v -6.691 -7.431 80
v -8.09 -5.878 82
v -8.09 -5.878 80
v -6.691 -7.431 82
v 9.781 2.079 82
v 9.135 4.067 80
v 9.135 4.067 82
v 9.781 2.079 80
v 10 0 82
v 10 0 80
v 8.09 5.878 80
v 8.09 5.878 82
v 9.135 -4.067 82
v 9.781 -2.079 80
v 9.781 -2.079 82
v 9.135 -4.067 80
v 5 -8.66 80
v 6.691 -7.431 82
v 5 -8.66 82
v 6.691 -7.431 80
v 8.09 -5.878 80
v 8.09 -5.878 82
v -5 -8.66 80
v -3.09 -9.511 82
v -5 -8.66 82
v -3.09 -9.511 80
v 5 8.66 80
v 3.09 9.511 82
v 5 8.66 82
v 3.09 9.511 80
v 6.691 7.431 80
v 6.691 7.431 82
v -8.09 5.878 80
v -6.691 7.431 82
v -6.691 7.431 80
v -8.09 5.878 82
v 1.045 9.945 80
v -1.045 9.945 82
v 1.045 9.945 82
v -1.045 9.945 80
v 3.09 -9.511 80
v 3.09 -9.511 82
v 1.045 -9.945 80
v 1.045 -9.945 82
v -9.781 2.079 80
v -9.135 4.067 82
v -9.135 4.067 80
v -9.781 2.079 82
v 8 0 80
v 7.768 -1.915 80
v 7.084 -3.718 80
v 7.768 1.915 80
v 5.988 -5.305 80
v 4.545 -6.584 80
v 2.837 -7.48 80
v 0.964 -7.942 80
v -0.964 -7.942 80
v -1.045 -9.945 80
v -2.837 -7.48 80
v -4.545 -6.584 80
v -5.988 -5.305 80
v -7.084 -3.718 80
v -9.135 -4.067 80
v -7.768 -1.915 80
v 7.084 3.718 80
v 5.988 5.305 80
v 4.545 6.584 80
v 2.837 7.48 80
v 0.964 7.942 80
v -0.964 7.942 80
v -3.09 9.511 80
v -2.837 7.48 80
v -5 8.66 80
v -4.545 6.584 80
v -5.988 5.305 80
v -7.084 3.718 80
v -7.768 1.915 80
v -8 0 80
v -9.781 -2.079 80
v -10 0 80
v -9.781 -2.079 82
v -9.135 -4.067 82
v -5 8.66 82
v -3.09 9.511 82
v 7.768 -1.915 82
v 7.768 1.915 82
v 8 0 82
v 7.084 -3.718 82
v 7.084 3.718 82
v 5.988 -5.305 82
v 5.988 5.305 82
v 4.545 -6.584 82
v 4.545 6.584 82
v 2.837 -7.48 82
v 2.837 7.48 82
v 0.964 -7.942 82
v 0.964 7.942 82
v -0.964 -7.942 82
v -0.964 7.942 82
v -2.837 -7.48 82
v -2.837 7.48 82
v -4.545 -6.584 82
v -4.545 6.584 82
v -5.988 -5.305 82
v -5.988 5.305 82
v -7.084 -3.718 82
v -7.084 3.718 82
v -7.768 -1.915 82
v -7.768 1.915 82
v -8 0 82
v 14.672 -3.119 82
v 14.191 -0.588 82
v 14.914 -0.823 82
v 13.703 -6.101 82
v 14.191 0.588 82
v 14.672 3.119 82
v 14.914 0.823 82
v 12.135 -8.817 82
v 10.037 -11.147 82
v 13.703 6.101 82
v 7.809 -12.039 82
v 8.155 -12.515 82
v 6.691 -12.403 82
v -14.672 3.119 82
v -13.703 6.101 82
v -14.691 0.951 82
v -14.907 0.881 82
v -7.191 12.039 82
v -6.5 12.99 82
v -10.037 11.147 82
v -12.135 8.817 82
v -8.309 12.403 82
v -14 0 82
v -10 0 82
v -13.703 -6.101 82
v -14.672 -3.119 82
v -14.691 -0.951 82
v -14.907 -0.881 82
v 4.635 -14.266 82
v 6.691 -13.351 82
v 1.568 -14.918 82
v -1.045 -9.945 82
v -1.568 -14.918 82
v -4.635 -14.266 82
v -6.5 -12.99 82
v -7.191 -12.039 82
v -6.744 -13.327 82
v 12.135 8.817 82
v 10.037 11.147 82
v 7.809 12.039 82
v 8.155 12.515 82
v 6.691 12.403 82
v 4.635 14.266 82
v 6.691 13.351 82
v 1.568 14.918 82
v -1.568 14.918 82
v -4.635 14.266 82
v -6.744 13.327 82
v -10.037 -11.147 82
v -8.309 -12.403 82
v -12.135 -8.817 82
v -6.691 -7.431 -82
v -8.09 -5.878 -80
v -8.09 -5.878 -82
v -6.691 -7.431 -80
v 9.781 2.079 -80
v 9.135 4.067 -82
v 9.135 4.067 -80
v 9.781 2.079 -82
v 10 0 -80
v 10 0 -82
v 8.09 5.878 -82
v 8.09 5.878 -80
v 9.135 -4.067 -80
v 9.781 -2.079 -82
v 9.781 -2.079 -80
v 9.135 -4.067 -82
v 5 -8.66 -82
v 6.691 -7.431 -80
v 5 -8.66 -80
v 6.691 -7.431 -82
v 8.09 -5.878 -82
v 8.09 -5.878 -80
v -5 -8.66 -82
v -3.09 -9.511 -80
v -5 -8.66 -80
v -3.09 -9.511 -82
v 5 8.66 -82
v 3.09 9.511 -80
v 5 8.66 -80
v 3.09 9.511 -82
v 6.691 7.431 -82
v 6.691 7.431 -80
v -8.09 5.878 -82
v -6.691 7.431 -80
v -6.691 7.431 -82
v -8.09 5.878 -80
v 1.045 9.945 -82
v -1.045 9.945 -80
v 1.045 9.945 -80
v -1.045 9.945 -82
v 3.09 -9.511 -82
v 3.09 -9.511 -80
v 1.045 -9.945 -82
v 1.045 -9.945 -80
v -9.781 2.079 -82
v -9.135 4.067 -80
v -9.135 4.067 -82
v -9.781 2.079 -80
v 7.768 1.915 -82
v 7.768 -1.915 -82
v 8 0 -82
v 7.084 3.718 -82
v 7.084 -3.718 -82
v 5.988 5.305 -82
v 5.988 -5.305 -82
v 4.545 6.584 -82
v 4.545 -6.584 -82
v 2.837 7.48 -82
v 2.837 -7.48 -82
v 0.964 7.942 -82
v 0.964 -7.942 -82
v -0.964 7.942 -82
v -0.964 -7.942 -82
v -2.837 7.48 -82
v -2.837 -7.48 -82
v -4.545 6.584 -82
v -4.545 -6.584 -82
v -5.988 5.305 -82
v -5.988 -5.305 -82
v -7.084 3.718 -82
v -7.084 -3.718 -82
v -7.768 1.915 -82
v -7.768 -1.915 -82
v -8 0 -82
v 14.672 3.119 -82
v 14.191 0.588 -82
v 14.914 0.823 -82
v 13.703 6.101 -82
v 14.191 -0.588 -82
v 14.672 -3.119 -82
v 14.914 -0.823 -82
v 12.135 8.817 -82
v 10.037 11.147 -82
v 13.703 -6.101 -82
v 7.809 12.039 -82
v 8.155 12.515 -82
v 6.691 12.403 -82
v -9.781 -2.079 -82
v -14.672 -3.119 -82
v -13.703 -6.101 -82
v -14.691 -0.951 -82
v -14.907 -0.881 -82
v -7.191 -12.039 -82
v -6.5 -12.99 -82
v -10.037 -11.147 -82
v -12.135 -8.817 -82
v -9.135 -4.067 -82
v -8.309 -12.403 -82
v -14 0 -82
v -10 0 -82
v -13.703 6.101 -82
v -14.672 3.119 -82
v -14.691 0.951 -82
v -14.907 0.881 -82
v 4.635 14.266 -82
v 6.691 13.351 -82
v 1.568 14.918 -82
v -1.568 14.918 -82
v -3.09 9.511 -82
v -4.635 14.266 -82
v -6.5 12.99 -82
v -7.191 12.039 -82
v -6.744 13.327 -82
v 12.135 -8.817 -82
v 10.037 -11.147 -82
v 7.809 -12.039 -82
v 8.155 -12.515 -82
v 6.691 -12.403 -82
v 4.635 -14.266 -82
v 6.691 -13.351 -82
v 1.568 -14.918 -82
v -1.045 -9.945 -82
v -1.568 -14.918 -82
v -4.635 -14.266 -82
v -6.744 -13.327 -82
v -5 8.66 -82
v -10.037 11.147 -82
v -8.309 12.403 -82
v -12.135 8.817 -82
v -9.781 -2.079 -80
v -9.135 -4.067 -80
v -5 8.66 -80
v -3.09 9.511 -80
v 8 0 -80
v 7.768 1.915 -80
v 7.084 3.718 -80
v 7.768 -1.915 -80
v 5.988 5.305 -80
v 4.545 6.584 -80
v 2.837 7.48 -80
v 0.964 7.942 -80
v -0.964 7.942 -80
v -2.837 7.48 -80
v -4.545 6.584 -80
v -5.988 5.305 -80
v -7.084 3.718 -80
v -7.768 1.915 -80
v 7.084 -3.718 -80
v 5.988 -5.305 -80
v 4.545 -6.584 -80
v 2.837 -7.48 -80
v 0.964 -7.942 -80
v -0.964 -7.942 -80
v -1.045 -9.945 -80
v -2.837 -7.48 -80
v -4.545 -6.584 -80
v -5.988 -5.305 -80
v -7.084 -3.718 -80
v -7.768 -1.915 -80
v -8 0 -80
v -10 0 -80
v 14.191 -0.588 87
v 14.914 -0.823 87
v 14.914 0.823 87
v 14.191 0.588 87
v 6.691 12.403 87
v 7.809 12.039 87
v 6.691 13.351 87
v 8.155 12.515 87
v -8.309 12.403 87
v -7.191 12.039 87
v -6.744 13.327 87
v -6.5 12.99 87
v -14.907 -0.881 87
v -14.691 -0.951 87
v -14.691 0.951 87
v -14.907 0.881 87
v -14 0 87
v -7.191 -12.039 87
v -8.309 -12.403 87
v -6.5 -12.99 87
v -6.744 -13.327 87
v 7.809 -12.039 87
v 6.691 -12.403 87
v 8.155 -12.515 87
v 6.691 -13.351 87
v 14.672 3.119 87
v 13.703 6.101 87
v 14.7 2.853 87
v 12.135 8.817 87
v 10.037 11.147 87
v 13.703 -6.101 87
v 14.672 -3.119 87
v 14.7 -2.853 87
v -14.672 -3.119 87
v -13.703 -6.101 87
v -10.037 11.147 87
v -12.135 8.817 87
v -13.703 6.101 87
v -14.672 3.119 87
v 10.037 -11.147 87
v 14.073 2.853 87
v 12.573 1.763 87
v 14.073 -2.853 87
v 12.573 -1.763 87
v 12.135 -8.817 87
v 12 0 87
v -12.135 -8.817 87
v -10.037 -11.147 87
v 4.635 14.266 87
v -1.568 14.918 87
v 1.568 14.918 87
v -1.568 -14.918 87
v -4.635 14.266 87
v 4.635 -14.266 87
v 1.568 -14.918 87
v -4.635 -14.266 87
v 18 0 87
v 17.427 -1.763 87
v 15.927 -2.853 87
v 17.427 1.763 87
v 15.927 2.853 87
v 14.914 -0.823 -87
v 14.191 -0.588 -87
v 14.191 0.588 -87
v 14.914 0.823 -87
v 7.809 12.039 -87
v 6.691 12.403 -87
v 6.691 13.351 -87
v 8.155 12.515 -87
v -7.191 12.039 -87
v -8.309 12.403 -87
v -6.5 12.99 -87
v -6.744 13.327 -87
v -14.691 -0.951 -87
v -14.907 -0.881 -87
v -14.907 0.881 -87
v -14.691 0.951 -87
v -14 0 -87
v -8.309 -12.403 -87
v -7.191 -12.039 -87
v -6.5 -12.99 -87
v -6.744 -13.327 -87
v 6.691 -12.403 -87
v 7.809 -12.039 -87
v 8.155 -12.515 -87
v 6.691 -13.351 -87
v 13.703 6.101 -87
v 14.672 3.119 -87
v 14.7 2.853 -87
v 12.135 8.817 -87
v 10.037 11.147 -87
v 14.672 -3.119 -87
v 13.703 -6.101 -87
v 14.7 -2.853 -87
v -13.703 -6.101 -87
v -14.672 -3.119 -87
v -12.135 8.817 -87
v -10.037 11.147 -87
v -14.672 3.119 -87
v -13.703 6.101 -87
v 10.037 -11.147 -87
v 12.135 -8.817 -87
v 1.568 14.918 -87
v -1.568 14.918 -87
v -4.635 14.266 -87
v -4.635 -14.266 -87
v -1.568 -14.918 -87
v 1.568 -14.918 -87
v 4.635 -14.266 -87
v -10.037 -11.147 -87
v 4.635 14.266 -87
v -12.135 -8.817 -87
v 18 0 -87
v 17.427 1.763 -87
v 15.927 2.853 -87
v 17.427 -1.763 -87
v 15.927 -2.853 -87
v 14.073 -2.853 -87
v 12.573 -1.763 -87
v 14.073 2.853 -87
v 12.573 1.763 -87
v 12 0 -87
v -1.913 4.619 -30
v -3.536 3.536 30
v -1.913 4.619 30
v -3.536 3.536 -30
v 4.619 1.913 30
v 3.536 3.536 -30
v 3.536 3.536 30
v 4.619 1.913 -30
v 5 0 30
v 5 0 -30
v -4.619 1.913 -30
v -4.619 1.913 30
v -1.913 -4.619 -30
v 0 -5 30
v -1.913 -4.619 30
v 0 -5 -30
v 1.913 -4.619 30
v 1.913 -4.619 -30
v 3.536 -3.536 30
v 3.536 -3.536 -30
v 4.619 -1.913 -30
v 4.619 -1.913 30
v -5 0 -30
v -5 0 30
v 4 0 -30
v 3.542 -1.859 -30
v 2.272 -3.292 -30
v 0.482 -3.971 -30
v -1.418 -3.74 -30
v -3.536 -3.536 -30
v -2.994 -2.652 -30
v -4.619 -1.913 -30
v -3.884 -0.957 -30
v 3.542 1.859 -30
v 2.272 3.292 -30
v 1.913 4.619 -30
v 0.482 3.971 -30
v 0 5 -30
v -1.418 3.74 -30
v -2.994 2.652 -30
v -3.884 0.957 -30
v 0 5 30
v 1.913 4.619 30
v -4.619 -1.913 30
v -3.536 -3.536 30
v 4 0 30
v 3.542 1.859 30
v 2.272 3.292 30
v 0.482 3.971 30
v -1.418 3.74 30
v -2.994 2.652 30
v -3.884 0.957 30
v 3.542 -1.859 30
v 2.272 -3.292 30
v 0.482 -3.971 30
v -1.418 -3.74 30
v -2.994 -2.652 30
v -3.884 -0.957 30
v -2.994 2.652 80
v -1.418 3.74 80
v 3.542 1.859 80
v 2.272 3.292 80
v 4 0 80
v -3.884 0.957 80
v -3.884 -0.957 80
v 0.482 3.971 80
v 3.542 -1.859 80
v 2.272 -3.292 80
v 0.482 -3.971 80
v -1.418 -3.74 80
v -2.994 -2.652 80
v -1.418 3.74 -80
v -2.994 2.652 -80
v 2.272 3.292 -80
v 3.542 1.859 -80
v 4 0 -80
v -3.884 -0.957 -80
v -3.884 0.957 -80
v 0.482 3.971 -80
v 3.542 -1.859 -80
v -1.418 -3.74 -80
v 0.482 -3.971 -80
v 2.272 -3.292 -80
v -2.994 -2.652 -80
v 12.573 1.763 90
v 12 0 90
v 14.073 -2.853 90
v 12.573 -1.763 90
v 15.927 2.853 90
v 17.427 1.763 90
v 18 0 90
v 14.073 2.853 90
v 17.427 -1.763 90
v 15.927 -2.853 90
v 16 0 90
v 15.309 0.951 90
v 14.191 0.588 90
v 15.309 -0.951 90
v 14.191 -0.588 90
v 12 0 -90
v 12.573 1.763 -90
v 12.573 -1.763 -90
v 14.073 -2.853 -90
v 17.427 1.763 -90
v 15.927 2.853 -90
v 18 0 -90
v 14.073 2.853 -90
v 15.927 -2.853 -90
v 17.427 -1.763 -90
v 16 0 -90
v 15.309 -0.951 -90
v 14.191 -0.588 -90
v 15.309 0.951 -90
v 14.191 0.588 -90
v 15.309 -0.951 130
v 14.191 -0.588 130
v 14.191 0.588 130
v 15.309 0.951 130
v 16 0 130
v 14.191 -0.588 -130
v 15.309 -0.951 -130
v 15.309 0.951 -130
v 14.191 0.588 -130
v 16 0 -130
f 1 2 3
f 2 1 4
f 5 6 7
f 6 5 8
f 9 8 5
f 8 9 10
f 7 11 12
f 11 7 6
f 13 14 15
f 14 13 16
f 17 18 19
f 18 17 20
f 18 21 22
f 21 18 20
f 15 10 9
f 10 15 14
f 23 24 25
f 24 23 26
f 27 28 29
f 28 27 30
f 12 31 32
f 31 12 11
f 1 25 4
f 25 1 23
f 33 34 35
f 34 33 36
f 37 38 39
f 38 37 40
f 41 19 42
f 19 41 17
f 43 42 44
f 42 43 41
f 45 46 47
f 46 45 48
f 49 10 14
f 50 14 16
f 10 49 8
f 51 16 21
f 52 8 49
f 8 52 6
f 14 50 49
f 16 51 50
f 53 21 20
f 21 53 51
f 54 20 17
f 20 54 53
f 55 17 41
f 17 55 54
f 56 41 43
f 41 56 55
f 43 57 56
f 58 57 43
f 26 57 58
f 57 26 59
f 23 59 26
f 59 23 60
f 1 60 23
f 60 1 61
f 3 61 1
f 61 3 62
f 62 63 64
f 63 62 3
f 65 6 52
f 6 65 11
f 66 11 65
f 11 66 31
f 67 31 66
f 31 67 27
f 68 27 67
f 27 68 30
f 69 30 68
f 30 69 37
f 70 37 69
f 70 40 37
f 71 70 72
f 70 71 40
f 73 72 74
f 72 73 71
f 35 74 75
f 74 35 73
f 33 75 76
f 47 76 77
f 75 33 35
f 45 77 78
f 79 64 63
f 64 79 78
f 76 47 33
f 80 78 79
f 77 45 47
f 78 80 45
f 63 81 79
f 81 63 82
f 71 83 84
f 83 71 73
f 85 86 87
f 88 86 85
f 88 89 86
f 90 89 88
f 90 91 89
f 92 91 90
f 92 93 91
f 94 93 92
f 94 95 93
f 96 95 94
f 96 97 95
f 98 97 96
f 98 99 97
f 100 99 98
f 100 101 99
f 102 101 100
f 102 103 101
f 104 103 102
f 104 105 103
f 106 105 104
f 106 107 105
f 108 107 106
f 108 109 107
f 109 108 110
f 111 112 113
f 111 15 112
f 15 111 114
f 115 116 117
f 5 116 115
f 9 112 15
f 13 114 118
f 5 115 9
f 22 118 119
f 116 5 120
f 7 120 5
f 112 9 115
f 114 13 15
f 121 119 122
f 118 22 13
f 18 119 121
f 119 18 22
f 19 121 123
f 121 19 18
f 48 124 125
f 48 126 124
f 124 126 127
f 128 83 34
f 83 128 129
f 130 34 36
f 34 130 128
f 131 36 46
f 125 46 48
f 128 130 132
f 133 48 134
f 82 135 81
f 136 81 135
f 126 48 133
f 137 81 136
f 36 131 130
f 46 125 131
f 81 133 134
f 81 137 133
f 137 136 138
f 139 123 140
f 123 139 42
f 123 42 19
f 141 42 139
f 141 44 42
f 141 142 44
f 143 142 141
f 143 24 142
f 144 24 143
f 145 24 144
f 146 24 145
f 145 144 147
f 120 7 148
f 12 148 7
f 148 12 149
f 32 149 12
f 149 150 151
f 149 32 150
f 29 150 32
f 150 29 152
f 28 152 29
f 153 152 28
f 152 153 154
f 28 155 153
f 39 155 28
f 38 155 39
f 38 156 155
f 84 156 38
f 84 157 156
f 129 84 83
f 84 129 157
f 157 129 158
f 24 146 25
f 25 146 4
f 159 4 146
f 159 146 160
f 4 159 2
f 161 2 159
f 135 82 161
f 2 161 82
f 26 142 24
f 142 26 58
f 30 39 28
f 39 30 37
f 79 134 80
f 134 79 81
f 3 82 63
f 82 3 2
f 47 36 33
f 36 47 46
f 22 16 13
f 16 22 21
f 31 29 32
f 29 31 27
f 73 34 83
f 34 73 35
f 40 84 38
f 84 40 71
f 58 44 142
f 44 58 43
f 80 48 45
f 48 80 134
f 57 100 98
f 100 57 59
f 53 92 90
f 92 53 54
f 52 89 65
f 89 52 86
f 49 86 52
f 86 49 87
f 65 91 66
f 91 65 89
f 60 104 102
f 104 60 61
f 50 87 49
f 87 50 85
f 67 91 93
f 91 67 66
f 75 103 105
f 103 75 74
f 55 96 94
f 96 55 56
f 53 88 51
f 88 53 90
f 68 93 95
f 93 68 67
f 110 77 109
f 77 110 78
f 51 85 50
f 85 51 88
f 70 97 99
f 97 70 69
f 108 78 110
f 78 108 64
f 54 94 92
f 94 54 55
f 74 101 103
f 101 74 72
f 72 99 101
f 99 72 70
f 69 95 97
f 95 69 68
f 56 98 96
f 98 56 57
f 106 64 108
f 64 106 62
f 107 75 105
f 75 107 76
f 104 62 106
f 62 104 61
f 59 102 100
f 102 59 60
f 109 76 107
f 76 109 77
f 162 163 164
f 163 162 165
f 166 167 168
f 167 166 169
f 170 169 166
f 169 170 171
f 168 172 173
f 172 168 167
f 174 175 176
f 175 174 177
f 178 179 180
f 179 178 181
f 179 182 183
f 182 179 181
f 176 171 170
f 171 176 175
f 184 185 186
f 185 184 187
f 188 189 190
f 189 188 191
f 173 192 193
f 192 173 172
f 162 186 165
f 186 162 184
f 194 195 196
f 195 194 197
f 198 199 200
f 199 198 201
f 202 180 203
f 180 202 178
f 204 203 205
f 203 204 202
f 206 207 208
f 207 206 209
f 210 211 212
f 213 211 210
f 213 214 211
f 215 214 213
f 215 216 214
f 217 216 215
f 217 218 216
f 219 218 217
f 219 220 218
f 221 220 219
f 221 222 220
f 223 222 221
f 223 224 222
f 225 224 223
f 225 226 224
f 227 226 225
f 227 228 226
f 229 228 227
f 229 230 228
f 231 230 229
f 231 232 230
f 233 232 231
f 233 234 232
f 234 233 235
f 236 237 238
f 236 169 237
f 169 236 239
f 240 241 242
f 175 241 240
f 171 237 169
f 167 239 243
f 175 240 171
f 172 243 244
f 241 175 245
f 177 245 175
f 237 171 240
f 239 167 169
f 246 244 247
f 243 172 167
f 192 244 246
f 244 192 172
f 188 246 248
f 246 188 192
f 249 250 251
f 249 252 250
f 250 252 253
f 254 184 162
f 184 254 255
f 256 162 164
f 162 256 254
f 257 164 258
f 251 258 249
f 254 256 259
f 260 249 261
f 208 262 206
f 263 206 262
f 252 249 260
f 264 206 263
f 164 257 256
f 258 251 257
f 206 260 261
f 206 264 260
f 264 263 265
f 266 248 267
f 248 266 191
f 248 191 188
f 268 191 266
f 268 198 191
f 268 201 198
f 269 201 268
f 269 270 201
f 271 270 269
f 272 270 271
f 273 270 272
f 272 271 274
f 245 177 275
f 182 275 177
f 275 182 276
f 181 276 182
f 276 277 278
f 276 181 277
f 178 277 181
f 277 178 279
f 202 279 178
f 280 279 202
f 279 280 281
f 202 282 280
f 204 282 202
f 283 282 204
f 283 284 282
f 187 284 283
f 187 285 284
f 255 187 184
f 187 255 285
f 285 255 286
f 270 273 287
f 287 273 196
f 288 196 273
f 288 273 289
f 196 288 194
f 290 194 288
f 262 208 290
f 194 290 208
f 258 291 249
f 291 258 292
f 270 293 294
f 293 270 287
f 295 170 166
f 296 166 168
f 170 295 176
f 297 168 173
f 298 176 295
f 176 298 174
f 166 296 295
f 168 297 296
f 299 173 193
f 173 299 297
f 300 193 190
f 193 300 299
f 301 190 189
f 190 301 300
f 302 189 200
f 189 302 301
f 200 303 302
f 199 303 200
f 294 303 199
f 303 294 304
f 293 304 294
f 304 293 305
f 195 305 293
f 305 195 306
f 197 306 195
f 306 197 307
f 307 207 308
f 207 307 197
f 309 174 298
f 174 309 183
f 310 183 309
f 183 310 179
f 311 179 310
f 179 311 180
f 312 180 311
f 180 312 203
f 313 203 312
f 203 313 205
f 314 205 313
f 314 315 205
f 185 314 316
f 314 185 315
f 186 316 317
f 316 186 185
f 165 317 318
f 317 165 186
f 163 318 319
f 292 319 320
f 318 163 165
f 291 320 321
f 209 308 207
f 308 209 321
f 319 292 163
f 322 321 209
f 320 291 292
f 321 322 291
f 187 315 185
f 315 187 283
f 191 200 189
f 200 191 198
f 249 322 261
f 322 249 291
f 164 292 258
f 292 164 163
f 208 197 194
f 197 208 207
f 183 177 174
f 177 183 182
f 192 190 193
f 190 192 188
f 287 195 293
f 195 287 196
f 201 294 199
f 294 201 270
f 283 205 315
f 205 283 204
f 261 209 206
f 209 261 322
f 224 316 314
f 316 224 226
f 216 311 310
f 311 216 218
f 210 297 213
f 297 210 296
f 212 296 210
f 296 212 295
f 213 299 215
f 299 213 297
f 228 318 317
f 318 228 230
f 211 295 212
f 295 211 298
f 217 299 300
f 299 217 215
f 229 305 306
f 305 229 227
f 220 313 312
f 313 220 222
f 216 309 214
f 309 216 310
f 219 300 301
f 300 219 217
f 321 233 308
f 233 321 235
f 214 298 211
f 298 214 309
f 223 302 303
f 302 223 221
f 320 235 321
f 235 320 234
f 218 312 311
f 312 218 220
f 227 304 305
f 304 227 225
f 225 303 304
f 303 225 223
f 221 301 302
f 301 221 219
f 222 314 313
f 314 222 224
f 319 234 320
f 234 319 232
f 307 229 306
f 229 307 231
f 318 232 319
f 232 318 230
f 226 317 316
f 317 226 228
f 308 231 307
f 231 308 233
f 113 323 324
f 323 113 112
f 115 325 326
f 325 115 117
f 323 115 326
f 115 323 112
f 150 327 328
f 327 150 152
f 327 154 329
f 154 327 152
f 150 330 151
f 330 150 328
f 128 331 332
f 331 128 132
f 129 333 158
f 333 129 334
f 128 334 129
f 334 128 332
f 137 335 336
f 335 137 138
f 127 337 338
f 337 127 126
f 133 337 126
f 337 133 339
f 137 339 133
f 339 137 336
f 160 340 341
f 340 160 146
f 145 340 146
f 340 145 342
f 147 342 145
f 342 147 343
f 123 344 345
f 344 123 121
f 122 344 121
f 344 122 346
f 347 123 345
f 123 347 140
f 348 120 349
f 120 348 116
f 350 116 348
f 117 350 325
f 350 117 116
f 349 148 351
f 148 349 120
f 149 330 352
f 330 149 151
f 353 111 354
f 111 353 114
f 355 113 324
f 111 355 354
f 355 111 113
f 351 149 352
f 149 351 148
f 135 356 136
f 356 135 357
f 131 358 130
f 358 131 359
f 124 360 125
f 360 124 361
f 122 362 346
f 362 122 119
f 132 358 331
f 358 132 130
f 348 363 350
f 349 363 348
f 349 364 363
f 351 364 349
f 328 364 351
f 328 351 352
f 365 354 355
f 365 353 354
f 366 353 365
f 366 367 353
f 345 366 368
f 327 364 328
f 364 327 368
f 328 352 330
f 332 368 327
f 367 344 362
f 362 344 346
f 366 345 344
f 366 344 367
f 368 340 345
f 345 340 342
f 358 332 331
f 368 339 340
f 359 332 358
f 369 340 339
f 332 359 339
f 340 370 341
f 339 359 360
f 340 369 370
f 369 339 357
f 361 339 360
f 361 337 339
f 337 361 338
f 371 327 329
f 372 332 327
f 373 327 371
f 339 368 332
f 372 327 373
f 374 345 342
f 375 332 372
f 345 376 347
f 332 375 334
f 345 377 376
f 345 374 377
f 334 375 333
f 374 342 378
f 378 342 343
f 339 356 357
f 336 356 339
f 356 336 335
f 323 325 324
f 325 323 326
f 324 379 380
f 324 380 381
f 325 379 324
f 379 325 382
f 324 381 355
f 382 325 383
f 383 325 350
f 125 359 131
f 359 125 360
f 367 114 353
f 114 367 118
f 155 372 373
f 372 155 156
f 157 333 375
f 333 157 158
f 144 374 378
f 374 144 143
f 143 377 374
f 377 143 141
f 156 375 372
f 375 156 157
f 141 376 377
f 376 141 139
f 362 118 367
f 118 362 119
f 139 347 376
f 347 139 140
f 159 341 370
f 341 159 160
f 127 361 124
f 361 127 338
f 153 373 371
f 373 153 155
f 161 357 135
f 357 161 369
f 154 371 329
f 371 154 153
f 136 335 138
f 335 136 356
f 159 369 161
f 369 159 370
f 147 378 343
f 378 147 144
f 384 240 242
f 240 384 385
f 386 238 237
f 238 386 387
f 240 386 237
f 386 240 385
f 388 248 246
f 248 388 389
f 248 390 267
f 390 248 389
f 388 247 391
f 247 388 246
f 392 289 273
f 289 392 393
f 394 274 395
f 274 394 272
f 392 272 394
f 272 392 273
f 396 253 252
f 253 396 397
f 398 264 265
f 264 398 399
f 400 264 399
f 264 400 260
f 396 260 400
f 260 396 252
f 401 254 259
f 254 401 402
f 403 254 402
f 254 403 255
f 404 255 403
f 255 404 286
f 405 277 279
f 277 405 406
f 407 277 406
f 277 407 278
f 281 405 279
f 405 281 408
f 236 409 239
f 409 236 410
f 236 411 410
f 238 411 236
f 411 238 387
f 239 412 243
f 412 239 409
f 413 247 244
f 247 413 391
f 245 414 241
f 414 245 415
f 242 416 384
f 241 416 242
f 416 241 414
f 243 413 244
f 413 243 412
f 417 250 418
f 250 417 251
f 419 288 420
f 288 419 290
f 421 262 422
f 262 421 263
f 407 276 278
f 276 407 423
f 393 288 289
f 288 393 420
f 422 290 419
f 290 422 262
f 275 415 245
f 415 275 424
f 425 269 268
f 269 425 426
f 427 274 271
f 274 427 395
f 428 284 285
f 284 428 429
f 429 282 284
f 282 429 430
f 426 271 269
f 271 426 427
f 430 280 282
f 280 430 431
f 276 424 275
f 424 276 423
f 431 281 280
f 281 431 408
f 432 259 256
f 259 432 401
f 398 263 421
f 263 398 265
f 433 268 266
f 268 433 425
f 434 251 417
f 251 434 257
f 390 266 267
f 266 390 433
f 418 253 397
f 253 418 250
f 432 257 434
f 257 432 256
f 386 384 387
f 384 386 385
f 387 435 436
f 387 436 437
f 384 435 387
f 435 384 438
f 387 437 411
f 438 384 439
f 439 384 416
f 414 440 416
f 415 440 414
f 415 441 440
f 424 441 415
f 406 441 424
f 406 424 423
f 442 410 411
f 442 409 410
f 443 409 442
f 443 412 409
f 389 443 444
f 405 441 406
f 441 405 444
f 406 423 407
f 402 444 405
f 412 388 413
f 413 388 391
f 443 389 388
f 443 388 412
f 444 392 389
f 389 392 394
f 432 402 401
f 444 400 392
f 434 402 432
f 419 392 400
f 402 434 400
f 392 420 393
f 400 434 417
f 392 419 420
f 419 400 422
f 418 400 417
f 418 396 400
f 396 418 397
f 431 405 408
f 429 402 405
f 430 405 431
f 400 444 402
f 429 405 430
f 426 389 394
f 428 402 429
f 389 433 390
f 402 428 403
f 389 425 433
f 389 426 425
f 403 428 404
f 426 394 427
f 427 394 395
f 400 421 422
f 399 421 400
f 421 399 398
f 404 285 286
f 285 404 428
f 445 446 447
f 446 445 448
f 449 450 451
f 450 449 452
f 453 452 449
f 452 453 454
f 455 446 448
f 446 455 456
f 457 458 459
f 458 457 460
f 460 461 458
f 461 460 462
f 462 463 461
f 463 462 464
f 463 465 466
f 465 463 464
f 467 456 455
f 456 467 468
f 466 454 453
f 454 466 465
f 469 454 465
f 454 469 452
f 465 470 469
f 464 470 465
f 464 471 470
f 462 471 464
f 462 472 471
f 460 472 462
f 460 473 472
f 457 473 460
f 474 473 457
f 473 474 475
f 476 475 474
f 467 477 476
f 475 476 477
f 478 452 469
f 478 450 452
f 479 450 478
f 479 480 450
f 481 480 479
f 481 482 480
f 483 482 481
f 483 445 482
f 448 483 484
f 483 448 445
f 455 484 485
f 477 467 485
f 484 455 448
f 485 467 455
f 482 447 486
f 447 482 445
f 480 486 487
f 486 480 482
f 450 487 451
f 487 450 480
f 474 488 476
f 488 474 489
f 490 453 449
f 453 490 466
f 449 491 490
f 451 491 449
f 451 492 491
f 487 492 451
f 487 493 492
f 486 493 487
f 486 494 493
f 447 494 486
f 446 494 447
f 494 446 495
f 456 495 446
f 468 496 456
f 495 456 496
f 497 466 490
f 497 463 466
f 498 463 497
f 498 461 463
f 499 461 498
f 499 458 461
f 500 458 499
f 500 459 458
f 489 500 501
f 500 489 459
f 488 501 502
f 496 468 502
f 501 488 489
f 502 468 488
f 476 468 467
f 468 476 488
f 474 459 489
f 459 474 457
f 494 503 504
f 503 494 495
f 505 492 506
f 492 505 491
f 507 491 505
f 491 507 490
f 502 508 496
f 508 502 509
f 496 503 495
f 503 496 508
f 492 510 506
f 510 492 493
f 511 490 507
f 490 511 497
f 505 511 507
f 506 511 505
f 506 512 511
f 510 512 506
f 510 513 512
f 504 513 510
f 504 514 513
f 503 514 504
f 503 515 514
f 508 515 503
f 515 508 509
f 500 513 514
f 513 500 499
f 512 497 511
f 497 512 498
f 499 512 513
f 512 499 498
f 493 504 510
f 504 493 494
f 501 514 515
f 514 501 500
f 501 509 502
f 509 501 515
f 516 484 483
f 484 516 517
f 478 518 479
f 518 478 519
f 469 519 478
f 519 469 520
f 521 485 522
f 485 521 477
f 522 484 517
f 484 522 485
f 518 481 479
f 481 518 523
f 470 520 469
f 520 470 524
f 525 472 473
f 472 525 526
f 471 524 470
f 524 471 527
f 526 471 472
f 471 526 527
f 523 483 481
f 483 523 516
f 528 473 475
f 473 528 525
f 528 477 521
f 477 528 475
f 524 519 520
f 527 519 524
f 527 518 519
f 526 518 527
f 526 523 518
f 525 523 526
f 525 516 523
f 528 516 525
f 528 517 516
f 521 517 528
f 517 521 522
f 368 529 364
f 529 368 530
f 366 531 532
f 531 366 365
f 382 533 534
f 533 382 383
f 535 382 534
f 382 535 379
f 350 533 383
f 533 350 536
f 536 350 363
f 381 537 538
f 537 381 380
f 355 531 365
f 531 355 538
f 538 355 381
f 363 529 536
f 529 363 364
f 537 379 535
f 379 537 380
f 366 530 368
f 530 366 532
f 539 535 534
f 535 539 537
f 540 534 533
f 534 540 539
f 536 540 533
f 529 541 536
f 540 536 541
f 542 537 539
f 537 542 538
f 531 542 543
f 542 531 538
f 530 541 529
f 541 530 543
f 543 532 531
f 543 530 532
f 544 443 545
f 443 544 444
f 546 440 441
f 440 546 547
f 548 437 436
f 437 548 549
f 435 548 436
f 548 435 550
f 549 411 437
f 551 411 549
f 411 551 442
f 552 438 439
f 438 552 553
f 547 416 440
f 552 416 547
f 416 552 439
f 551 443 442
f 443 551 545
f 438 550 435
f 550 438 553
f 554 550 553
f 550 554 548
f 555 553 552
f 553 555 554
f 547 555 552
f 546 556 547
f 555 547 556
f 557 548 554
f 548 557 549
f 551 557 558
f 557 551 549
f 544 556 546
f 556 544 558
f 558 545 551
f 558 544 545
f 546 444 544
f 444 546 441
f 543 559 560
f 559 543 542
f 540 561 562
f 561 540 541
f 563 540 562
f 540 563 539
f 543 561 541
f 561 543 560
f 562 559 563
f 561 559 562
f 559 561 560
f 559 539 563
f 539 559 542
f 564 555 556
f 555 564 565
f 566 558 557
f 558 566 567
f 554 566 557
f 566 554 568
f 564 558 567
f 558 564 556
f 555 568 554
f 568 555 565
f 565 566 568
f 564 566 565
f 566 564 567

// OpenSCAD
// Parameters for the central shaft
shaft_diameter = 10; // Diameter of the central shaft
shaft_length = 60;   // Length of the central shaft (elongated to match the original model)

// Central Shaft
module central_shaft() {
    // Ensure a consistent cylindrical shape
    cylinder(d = shaft_diameter, h = shaft_length, center = true);
}

// Parameters for the input shaft
input_shaft_diameter = 8; // Diameter of the input shaft
input_shaft_length = 50;  // Length of the input shaft (elongated to match the original model)

// Input Shaft
module input_shaft() {
    // Ensure a consistent cylindrical shape
    cylinder(d = input_shaft_diameter, h = input_shaft_length, center = true);
}

// Parameters for the output shaft
output_shaft_diameter = 8; // Diameter of the output shaft
output_shaft_length = 50;  // Length of the output shaft (elongated to match the original model)

// Output Shaft
module output_shaft() {
    // Ensure a consistent cylindrical shape
    cylinder(d = output_shaft_diameter, h = output_shaft_length, center = true);
}

// Parameters for the spacer ring
spacer_ring_thickness = 2; // Thickness of the spacer ring (reduced to match the original model)
spacer_ring_diameter = 20; // Outer diameter of the spacer ring

// Spacer Ring
module spacer_ring() {
    difference() {
        cylinder(d = spacer_ring_diameter, h = spacer_ring_thickness, center = true);
        cylinder(d = spacer_ring_diameter - 4, h = spacer_ring_thickness, center = true);
    }
}

// Parameters for the flange plate
flange_plate_diameter = 30; // Diameter of the flange plate
flange_plate_thickness = 5; // Thickness of the flange plate
bolt_hole_diameter = 2;     // Diameter of the bolt holes
num_bolt_holes = 6;         // Number of bolt holes (increased to match the original model)

// Flange Plate
module flange_plate() {
    difference() {
        cylinder(d = flange_plate_diameter, h = flange_plate_thickness, center = true);
        for (i = [0 : 360/num_bolt_holes : 360-360/num_bolt_holes]) {
            translate([flange_plate_diameter/2 * cos(i), flange_plate_diameter/2 * sin(i), 0])
                cylinder(d = bolt_hole_diameter, h = flange_plate_thickness + 1, center = true);
        }
    }
}

// Parameters for the nut
nut_diameter = 6; // Diameter of the nut (reduced to match the original model)
nut_thickness = 3; // Thickness of the nut

// Nut
module nut() {
    cylinder(d = nut_diameter, h = nut_thickness, center = true);
}

// Parameters for the bolt
bolt_diameter = 2; // Diameter of the bolt (reduced to match the original model)
bolt_length = 40;  // Length of the bolt (elongated to match the original model)

// Bolt
module bolt() {
    cylinder(d = bolt_diameter, h = bolt_length, center = true);
}

// Render the components
central_shaft();
translate([0, 0, shaft_length/2 + input_shaft_length/2]) input_shaft();
translate([0, 0, -shaft_length/2 - output_shaft_length/2]) output_shaft();
translate([0, 0, shaft_length/2 + input_shaft_length + spacer_ring_thickness/2]) spacer_ring();
translate([0, 0, -shaft_length/2 - output_shaft_length - spacer_ring_thickness/2]) spacer_ring();
translate([0, 0, shaft_length/2 + input_shaft_length + spacer_ring_thickness + flange_plate_thickness/2]) flange_plate();
translate([0, 0, -shaft_length/2 - output_shaft_length - spacer_ring_thickness - flange_plate_thickness/2]) flange_plate();
translate([flange_plate_diameter/2, 0, shaft_length/2 + input_shaft_length + spacer_ring_thickness + flange_plate_thickness + nut_thickness/2]) nut();
translate([flange_plate_diameter/2, 0, -shaft_length/2 - output_shaft_length - spacer_ring_thickness - flange_plate_thickness - nut_thickness/2]) nut();
translate([flange_plate_diameter/2, 0, shaft_length/2 + input_shaft_length + spacer_ring_thickness + flange_plate_thickness + nut_thickness + bolt_length/2]) bolt();
translate([flange_plate_diameter/2, 0, -shaft_length/2 - output_shaft_length - spacer_ring_thickness - flange_plate_thickness - nut_thickness - bolt_length/2]) bolt();
